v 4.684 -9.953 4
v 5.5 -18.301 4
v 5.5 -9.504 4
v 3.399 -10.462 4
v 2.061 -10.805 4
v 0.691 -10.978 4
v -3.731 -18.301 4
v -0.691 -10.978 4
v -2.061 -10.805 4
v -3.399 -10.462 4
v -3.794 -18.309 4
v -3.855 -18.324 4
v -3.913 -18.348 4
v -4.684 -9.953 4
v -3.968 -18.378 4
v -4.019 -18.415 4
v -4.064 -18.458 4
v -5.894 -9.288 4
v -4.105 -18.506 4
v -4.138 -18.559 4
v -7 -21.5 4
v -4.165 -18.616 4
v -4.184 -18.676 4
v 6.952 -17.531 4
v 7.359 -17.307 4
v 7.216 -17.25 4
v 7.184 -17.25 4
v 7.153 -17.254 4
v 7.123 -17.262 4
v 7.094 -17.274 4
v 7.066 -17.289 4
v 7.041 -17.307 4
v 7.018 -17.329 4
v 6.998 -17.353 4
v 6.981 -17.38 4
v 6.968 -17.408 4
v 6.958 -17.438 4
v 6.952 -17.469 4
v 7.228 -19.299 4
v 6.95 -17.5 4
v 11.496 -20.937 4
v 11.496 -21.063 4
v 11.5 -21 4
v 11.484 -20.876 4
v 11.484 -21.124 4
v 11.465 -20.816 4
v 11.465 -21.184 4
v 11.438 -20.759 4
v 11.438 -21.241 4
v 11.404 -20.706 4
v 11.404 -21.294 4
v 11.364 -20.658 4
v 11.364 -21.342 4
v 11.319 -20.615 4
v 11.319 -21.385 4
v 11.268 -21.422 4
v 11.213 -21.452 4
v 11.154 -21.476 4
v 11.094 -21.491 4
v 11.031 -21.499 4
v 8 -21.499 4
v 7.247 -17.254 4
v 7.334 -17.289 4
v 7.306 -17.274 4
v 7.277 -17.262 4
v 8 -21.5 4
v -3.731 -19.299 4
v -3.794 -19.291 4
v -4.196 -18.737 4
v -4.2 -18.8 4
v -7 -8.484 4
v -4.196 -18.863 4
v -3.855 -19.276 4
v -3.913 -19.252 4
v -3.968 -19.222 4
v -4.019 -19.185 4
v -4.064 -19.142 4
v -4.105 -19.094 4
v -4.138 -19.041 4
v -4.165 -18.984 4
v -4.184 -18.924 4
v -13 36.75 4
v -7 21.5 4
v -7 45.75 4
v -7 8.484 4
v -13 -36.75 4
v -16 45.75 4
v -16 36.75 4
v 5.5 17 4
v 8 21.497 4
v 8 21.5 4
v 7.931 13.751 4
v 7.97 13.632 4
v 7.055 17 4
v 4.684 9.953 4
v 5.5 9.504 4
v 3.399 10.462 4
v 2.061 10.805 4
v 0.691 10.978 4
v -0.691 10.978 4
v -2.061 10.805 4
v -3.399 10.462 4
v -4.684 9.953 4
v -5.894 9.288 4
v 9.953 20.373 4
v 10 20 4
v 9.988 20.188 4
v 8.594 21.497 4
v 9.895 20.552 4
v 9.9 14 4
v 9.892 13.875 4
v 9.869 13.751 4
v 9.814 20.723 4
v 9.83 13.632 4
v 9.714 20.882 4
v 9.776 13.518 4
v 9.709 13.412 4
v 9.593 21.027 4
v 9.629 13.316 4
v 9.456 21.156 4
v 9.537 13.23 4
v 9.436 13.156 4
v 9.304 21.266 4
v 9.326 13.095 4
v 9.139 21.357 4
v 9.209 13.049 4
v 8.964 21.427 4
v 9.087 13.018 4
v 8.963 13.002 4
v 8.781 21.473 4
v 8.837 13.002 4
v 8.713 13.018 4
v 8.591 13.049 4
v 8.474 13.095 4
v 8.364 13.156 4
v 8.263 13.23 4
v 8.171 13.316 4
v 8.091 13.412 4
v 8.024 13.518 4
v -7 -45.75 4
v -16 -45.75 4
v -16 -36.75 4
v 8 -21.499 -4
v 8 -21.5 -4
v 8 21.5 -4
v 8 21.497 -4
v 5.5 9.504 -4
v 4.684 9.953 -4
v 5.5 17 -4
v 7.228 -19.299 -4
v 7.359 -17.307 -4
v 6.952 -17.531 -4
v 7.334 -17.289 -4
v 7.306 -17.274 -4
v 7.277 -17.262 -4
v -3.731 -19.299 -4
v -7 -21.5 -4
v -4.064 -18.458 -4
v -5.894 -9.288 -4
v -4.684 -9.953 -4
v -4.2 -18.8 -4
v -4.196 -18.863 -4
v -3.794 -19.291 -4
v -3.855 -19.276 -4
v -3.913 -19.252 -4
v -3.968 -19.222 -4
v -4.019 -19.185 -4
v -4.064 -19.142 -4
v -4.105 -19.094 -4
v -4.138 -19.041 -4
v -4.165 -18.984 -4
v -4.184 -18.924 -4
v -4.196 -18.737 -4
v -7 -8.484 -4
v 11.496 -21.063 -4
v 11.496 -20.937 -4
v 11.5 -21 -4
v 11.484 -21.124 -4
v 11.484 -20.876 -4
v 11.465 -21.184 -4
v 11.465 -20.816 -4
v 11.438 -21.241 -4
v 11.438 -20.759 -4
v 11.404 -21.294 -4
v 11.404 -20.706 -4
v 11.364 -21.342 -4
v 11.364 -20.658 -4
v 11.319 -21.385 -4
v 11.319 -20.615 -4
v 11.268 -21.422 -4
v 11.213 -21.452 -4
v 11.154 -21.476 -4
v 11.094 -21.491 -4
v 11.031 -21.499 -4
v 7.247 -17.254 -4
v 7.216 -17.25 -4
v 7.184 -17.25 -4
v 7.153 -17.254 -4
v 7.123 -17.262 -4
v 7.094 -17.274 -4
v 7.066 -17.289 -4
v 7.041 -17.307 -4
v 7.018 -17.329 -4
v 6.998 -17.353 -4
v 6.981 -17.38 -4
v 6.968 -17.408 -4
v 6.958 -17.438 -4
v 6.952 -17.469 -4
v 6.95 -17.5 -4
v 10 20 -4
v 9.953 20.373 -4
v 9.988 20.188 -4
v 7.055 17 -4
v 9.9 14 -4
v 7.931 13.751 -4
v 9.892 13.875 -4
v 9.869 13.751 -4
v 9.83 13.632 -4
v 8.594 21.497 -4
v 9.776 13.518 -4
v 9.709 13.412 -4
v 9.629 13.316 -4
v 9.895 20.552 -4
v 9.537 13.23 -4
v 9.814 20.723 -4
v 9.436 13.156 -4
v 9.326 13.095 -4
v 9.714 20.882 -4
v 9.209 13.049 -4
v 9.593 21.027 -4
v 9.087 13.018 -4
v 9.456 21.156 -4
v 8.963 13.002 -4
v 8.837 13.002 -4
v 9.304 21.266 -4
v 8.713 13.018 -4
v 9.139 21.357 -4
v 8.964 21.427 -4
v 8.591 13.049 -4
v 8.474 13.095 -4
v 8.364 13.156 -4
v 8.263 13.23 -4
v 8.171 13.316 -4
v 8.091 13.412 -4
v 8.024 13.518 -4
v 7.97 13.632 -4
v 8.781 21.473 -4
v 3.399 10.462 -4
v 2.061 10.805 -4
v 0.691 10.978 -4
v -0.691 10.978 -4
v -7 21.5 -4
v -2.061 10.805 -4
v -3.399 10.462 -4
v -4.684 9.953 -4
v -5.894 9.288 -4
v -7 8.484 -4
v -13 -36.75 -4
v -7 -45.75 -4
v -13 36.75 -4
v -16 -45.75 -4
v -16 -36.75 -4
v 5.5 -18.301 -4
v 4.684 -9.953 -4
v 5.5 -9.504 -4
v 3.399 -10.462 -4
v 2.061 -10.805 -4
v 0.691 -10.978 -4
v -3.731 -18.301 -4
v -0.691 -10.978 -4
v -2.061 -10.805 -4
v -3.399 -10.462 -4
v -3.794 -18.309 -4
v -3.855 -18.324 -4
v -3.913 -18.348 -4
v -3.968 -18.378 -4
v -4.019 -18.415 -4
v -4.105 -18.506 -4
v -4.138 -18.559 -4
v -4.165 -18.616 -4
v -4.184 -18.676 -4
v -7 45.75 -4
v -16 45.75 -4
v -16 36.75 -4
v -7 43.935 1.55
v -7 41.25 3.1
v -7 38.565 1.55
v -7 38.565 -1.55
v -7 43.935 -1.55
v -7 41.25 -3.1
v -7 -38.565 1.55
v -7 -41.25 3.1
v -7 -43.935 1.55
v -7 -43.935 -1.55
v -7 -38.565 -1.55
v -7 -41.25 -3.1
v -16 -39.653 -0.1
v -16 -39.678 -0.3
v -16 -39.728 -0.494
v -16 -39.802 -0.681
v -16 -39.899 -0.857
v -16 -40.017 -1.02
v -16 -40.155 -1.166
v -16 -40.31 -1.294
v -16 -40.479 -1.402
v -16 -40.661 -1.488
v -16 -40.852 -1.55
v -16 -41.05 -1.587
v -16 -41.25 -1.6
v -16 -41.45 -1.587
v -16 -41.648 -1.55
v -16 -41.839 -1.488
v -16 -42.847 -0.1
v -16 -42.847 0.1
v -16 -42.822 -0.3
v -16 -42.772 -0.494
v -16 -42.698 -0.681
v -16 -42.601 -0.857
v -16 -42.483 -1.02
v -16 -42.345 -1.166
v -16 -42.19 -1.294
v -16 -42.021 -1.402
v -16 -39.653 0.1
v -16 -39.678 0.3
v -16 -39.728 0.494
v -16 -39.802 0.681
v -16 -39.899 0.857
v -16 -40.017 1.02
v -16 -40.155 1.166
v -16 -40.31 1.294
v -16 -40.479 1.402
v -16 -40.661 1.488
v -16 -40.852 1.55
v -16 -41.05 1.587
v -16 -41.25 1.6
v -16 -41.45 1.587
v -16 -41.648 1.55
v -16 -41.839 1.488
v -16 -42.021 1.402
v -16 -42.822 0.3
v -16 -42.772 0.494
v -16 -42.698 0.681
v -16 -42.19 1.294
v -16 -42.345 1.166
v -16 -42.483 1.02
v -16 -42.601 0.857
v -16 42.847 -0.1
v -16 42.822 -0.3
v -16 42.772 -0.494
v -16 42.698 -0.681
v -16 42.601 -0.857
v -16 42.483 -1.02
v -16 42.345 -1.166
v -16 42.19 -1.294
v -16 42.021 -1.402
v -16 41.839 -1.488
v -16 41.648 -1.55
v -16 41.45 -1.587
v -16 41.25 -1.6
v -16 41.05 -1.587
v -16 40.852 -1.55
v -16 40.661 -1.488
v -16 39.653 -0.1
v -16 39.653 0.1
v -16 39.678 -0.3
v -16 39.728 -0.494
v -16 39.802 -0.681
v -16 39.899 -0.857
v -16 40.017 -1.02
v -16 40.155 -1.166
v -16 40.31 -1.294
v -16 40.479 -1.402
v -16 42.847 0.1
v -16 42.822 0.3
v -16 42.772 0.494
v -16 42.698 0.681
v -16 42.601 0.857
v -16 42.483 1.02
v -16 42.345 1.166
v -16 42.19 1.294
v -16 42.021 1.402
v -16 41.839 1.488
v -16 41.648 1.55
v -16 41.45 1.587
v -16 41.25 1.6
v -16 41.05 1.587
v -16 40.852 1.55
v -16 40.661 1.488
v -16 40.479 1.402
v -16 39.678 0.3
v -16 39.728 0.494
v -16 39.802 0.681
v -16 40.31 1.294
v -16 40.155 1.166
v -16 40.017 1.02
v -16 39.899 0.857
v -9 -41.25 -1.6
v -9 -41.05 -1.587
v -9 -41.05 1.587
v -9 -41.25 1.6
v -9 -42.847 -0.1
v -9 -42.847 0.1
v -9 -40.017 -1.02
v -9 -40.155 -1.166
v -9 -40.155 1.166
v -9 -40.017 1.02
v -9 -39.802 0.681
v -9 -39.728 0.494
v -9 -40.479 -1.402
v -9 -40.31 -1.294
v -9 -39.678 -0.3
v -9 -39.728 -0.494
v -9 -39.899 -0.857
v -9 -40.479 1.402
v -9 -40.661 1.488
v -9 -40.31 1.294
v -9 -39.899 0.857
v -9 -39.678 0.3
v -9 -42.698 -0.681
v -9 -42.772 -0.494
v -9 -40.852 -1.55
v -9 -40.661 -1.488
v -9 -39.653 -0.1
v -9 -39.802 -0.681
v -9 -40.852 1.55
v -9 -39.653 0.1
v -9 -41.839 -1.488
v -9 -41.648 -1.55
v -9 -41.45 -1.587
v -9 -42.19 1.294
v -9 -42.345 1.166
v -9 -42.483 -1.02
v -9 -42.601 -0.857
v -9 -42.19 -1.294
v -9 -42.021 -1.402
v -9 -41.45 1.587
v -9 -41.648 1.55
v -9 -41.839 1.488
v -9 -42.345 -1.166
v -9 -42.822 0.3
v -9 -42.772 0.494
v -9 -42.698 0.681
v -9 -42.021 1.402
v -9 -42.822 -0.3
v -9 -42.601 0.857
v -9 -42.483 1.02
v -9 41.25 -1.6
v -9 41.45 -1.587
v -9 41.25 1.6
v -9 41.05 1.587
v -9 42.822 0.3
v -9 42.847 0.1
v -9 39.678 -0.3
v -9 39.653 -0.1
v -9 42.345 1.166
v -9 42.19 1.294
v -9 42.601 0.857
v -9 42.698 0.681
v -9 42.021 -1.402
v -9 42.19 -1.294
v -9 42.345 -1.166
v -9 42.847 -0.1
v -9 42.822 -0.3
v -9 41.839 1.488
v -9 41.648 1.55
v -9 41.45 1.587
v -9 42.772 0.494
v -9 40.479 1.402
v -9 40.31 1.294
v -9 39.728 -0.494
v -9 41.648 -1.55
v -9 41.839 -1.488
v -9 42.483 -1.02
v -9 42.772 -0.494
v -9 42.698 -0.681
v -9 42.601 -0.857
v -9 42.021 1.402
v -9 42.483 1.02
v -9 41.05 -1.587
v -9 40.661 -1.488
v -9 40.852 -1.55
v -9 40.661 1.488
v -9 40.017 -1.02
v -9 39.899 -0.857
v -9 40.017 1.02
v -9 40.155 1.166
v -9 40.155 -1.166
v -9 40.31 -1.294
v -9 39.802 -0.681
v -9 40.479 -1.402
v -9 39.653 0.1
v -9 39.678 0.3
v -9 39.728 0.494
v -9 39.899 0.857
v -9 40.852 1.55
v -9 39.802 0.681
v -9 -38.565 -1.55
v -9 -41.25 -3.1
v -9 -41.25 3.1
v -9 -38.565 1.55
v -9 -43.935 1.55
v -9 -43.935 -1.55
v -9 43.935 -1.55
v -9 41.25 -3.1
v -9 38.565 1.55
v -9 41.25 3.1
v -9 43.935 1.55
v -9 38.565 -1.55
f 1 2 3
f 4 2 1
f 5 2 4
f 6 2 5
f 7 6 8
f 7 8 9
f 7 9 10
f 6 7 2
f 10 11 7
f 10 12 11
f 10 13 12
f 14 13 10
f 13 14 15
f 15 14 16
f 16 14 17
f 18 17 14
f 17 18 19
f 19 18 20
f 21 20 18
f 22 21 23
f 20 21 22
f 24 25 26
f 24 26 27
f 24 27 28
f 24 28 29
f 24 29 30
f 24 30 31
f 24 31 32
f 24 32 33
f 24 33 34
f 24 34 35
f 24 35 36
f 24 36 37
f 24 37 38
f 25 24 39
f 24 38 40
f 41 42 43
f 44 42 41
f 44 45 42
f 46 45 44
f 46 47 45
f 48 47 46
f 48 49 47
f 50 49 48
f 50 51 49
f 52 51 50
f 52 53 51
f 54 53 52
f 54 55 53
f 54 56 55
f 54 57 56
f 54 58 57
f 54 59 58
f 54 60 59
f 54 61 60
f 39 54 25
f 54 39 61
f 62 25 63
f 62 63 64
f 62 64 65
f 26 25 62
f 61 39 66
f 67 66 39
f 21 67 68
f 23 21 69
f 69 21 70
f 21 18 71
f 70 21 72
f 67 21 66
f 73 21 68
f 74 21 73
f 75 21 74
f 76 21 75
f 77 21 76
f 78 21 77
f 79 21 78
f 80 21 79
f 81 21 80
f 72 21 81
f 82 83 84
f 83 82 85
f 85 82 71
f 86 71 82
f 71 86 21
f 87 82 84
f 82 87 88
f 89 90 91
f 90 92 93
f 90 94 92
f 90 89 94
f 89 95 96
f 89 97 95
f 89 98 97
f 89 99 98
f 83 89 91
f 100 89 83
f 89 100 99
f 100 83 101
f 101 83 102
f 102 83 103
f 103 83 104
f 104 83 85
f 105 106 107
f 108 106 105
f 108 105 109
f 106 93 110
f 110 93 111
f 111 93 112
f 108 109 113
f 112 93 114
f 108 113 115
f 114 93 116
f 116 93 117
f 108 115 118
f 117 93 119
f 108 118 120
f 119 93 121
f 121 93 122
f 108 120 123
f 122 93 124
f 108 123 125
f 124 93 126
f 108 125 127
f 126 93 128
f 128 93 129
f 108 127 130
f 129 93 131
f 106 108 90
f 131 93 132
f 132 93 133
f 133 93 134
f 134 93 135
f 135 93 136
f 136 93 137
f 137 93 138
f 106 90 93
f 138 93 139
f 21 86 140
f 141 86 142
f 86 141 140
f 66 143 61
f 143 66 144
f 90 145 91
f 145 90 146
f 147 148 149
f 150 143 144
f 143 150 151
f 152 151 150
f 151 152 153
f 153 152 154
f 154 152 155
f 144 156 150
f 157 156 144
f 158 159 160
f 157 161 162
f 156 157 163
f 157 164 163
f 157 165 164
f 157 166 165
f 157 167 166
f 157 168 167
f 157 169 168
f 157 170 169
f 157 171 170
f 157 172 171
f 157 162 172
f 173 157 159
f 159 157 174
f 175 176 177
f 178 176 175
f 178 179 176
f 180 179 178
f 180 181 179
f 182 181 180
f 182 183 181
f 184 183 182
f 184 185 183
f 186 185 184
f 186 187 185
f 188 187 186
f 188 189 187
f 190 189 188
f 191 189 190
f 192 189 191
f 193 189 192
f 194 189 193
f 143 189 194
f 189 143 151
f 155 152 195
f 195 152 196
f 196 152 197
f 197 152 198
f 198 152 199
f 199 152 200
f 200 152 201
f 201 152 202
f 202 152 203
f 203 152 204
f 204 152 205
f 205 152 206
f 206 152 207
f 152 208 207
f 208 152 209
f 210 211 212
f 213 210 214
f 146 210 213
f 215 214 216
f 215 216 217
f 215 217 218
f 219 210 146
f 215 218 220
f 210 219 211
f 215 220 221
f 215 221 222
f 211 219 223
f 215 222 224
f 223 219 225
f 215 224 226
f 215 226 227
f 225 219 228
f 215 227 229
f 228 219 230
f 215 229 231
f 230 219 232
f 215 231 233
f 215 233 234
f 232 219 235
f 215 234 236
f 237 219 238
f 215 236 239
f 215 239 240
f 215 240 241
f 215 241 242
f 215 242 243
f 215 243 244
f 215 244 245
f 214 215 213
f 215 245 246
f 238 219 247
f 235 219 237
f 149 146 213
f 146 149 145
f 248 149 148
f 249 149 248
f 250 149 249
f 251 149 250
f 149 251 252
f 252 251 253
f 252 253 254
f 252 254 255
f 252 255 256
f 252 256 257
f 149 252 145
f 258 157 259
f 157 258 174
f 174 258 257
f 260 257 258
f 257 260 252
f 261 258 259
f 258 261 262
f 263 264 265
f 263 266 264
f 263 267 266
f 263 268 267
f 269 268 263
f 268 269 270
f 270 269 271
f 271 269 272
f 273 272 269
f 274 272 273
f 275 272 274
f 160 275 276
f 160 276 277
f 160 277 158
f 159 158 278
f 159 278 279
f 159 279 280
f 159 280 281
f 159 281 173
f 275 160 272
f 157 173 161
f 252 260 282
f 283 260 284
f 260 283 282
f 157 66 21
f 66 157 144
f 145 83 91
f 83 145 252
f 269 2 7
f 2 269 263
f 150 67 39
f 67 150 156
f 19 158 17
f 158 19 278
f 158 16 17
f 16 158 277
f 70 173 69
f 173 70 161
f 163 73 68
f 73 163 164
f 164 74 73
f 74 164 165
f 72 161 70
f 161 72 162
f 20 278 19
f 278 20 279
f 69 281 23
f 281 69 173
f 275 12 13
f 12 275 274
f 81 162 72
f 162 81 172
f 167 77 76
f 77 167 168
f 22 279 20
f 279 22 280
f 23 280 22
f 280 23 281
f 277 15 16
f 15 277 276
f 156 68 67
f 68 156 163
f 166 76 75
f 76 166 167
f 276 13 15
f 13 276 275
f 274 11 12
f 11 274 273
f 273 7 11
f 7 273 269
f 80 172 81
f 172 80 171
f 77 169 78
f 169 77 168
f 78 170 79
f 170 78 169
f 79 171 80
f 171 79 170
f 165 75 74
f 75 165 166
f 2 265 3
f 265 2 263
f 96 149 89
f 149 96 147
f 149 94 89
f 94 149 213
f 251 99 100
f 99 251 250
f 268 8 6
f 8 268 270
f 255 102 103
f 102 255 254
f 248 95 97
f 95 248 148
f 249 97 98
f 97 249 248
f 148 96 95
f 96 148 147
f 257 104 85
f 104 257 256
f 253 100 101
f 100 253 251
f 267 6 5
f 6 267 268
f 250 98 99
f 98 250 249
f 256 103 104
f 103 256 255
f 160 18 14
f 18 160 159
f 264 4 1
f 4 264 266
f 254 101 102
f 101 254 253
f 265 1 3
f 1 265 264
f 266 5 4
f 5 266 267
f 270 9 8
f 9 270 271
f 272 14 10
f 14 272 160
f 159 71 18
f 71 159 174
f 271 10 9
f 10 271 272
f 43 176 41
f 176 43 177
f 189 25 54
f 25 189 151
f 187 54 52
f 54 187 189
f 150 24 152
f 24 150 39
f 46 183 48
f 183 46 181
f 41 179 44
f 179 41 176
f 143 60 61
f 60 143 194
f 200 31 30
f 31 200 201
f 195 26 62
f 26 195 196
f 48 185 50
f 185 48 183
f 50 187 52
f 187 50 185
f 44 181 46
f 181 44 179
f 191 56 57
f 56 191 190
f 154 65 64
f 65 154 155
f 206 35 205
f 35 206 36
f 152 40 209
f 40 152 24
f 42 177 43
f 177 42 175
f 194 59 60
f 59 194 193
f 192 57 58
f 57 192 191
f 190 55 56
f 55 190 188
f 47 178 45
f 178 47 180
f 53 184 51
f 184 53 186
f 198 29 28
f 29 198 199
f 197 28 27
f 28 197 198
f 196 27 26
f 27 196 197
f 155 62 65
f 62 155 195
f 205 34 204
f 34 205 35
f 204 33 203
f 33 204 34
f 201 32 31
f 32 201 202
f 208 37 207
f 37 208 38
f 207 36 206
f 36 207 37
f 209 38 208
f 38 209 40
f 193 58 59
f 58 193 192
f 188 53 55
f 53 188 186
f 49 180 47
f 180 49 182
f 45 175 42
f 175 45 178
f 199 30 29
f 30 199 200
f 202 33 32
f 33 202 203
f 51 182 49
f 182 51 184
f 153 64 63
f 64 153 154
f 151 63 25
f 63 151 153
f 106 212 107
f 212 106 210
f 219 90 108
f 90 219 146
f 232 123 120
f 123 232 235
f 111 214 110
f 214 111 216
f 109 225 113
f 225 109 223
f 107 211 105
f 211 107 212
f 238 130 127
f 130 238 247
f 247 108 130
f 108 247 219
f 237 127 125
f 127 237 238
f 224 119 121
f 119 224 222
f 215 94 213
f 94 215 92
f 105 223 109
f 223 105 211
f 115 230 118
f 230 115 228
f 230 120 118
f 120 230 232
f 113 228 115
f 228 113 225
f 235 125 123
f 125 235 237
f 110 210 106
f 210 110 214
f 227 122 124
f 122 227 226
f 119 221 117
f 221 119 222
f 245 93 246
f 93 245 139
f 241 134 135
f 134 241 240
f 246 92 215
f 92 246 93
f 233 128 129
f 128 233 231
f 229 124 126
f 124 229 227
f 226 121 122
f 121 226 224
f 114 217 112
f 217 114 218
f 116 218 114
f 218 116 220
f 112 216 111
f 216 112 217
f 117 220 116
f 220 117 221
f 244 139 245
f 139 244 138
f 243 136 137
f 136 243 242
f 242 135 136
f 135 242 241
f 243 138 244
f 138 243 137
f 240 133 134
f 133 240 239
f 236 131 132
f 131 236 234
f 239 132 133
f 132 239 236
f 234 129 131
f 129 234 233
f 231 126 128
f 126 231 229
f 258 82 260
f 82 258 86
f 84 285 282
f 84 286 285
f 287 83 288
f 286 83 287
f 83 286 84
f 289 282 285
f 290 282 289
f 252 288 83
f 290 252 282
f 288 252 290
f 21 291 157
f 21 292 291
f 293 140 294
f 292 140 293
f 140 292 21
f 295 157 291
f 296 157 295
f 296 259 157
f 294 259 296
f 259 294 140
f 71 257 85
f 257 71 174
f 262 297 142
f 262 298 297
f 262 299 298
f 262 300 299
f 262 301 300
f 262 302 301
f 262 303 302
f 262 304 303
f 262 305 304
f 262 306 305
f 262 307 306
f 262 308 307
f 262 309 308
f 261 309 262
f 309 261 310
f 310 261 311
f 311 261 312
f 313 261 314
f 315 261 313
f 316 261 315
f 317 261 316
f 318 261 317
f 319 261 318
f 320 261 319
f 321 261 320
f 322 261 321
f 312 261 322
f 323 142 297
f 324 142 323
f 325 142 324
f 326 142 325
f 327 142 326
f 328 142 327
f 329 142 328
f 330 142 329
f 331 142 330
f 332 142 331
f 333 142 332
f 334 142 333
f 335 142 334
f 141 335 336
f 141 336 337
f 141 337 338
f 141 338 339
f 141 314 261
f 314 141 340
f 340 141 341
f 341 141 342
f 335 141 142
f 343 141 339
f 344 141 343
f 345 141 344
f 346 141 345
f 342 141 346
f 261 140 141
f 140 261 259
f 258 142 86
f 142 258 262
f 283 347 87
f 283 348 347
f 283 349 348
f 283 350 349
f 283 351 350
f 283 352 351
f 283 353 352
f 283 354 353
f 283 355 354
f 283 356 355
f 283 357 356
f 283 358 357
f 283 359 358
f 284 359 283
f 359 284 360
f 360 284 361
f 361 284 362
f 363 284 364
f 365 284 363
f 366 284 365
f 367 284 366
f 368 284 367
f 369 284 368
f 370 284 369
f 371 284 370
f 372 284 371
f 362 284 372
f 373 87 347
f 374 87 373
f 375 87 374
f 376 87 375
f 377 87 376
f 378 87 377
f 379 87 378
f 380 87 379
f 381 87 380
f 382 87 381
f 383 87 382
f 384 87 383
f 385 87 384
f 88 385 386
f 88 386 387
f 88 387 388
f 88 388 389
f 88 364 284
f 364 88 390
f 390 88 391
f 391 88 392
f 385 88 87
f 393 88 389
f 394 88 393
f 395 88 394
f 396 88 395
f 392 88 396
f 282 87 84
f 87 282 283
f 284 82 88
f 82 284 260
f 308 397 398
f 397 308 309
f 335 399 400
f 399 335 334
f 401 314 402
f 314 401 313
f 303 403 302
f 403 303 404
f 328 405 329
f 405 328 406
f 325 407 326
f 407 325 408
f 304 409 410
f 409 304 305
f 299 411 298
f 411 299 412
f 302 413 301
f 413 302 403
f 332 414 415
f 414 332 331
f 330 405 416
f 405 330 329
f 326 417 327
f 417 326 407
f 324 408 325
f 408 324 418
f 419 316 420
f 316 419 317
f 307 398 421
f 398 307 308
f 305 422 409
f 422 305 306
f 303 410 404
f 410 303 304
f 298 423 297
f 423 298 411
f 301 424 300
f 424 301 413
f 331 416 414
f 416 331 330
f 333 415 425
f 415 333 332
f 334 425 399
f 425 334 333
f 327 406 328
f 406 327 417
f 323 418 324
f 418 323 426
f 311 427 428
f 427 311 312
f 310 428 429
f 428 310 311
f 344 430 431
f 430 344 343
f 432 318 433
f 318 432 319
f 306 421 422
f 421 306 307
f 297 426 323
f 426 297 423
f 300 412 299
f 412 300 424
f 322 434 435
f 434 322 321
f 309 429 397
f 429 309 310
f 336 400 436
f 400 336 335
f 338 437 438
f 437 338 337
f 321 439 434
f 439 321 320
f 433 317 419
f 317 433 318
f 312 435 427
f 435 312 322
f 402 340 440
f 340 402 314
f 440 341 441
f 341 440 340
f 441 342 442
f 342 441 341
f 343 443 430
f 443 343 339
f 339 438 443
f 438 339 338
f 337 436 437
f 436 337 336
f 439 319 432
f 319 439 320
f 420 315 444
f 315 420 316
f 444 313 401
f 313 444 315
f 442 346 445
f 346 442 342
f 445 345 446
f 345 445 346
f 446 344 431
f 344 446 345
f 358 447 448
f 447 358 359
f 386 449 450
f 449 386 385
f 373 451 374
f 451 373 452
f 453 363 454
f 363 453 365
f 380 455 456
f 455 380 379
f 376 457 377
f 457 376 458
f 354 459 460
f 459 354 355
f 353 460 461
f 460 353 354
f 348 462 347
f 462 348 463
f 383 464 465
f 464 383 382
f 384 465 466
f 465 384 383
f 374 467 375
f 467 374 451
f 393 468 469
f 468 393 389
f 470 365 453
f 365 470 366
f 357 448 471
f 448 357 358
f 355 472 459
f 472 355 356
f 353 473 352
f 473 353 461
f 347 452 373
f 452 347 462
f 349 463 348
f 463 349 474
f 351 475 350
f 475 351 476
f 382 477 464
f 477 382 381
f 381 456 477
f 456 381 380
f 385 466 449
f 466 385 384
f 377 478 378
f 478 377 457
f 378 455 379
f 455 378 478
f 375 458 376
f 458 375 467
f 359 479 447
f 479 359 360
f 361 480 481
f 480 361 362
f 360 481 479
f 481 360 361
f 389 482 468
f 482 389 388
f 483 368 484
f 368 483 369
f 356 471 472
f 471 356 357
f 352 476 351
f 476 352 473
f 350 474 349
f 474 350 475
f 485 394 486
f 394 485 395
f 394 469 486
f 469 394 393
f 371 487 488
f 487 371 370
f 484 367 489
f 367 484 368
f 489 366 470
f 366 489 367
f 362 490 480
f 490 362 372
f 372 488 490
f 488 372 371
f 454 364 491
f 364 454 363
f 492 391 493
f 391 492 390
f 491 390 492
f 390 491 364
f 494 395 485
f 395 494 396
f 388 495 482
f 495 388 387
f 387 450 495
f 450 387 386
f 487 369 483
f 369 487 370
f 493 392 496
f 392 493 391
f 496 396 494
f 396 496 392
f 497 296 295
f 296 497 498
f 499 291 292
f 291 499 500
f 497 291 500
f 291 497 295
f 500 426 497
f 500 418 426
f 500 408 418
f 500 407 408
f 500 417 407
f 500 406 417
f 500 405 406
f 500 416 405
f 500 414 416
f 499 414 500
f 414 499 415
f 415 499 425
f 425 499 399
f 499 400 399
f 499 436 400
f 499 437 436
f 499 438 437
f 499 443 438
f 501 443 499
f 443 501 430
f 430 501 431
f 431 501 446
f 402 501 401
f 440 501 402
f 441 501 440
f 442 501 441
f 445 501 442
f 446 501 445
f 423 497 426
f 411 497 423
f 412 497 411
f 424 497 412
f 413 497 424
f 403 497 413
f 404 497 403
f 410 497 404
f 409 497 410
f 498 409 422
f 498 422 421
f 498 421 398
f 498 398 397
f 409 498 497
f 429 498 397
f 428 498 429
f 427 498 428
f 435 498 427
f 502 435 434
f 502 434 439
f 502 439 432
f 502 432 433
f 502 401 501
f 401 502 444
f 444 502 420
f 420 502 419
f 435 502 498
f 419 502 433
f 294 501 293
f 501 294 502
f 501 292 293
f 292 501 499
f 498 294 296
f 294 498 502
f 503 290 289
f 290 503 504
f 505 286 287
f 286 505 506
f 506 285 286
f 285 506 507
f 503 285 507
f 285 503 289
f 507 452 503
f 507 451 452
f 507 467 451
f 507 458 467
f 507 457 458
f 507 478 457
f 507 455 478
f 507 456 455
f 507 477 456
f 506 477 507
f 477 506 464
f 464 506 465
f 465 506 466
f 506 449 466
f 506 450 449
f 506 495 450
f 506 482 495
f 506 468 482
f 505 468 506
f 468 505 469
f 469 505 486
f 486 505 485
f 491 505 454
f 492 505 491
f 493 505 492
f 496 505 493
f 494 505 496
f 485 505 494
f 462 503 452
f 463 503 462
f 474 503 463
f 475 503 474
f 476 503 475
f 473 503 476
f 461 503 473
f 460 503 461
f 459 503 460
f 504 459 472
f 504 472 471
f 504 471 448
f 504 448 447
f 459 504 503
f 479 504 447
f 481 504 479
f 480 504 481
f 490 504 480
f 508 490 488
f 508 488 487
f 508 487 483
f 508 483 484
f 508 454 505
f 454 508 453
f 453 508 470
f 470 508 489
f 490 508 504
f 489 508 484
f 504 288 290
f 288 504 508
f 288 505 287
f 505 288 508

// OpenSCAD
$fn=50;

// Clip thickness
DIN_CLIP_W = 8;

module din_clip() {
    union() {
        difference() {
            cube([16,43,DIN_CLIP_W], center=true);
            hull() {
                translate([9,-18.8,0]) cylinder(d=1,h=DIN_CLIP_W+0.1,center=true);
                translate([-3.7,-18.8,0]) cylinder(d=1,h=DIN_CLIP_W+0.1,center=true);
            }
            translate([7,-1,0]) cube([3,36,DIN_CLIP_W+0.1],center=true);
            cylinder(d=22,h=DIN_CLIP_W+0.1,center=true);
        }
        hull() {
            translate([11,-21,0]) cylinder(d=1,h=DIN_CLIP_W,center=true);
            translate([8,-21,0]) cylinder(d=1,h=DIN_CLIP_W,center=true);
            translate([7.2,-17.5,0]) cylinder(d=0.5,h=DIN_CLIP_W,center=true);
        }
        hull() {
            translate([8.5,20,0]) cylinder(d=3,h=DIN_CLIP_W,center=true);
            translate([7.8,20,0]) cylinder(d=3,h=DIN_CLIP_W,center=true);
            translate([8.9,14,0]) cylinder(d=2,h=DIN_CLIP_W,center=true);
        }
    }
}

module din_relay_board() {
    difference() {
        union() {
            din_clip();
            translate([-10,0,0]) cube([6,90,DIN_CLIP_W], center=true);
            translate([-11.5,-82.5/2,0]) cube([9,9,DIN_CLIP_W], center=true);
            translate([-11.5,+82.5/2,0]) cube([9,9,DIN_CLIP_W], center=true);
        }
        
        translate([-10,-82.5/2,0]) rotate([0,90,0]) cylinder(d=3.2,h=15,center=true);
        translate([-10,+82.5/2,0]) rotate([0,90,0]) cylinder(d=3.2,h=15,center=true);
        
        translate([-4,-82.5/2,0]) rotate([0,90,0]) cylinder(d=6.2,h=10,center=true, $fn=6);
        translate([-4,+82.5/2,0]) rotate([0,90,0]) cylinder(d=6.2,h=10,center=true, $fn=6);
    }
}

din_relay_board();
